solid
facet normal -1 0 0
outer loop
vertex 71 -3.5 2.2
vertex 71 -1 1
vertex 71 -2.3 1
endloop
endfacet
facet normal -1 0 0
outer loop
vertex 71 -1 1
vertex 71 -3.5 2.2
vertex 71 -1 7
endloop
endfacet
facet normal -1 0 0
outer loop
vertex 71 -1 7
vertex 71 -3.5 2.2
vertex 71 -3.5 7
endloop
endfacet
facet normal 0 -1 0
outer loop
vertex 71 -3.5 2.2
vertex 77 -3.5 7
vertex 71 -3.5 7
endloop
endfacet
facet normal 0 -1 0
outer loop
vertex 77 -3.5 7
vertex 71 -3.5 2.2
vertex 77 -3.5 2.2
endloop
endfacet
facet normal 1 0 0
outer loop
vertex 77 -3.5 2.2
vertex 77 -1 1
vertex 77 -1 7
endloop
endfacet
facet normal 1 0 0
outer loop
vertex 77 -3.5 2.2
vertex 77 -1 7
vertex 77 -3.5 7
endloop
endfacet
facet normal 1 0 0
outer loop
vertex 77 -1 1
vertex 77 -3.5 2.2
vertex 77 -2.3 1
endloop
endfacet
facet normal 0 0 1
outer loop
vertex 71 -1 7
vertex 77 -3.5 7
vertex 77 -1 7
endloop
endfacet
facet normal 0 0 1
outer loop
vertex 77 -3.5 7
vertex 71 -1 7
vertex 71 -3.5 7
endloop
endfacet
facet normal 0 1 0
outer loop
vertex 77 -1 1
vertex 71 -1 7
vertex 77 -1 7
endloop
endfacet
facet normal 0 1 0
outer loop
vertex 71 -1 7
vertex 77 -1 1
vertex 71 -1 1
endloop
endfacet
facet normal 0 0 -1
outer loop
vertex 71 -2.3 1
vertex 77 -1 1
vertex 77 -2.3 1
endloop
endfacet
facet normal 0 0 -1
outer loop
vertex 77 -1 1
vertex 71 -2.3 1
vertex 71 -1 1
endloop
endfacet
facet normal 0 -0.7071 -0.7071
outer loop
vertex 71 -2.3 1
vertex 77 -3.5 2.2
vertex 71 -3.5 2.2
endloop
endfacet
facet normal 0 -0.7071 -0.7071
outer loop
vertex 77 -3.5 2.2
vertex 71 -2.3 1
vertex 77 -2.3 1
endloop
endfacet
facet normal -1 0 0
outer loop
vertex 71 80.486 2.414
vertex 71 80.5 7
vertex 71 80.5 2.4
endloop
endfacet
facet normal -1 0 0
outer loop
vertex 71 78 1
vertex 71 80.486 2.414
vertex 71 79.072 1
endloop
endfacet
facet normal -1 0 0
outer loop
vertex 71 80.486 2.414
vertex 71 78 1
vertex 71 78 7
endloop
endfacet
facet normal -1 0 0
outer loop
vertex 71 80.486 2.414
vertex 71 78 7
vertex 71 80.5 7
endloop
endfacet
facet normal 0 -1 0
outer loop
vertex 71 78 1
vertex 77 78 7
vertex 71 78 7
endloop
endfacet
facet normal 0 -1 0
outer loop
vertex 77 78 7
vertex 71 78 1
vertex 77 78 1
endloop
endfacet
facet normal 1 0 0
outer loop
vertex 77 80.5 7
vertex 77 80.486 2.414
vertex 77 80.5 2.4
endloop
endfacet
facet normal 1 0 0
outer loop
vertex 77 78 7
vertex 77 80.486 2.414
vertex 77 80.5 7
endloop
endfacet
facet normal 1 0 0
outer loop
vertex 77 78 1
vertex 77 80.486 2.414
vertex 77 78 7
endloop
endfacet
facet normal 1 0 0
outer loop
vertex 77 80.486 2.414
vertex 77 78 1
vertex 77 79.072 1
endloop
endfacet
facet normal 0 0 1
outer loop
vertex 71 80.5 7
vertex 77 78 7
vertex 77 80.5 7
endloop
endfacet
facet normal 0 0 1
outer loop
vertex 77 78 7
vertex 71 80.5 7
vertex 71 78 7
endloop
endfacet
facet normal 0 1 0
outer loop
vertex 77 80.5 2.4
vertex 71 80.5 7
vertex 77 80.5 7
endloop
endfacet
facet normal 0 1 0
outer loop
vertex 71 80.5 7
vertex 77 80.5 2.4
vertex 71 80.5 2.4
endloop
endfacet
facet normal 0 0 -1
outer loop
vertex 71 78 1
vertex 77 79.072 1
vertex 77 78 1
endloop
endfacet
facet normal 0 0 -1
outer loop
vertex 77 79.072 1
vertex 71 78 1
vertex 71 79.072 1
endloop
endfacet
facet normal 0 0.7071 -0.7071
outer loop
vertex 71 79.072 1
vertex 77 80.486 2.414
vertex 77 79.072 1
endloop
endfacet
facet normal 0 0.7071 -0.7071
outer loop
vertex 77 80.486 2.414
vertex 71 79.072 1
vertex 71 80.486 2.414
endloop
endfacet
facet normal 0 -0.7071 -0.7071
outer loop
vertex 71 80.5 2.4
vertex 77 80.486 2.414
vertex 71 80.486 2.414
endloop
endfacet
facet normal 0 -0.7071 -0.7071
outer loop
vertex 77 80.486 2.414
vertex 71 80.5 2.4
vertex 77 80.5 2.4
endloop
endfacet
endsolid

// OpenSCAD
// file: util.scad
module micro_usb() {
    color("grey")
    cube([7.7,5.5,3]);
}

micro_usb();

module header(x_max,y_max) {
    union() {
        for(x=[0:x_max-1]) {
            for(y=[0:y_max-1]) {
                translate([x*2.5,y*2.5]) {
                    color("black")
                        cube([2.5,2.5,2.5]);
                    color("gold")
                        translate([(2.5 - 0.65)/2,(2.5 - 0.65)/2,-2.5])
                        cube([0.65,0.65,11.6]);
                }
            }
        }
    }
}

translate([0,8,0])
    header(2,13);

module sdcard() {

    color("red")
        cube([11,15,0.75]);
}
translate([10,0,0])
    sdcard();

module sdcard_reader() {
    color("grey")
        cube([12,11.65,1.5]);
}
translate([9.5,-0.4,0])
    sdcard_reader();

module hdmi() {
    color("grey")
        cube([11,15,5.6]);

}

translate([30,0,0])
    hdmi();

module usb() {
    color("grey")
    cube([14,14,5.85]);

}

translate([10,20,0])
    usb();

module audio() {
    $fn=30;
    color("black")
        union() {
            cube([7,12.6,6]);
            translate([7/2,14.5,3])
                rotate([90,0,0])
                cylinder(d=6,h=2.5);
        }
}

translate([30,30,0])
    audio();

module switch() {
    color("black")
        cube([7.75,7.75,2.66]);
    $fn=10;
    // actual height is 2.75, but the buttons are squishy
    // h=2.75
    color("gray")
        translate([7.75/2,7.75/2,2.66])
        cylinder(d=3.5,h=2);
}
translate([])
    switch();


module screw() {
    // 4-40x3/8th screws
    $fn=30;
    width = 2.7;
    thread_height = 7.46;
    head_height = 2;
    head_width = 5.2;
    color("grey")
    cylinder(h=head_height, d1=width, d2=head_width, center=true);
    color("grey")
    translate([0,0,-4])
    cylinder(h=thread_height, d=width, center=true);
}


module screw_with_hole() {
    screw();
    $fn=30;
    
    translate([0,0,7.9])
    // slightly oversized screw head
    cylinder(h=15, d=5.5, center=true);
}

module screw_mount() {
    $fn=30;
    thread_height = 7.46;
    width = 2.6; // undersized
    difference() {
        cube([6,8,4], center=true);
        translate([0,0,1])
        cylinder(h=thread_height, d=width, center=true);
    }
}
module battery() {
    color("grey")
    cube([37,60,7.24]);
}

module washer(h=3,d=5) {
    $fn=30;
    
    difference() {

        cylinder(h=h,d=d, center=true);
        translate([0,0,1])
        screw();
    }
}

module slide_switch() {
    color("grey")
      cube([4.2,11.7,6]);
    color("black")
      translate([1,3.6,6])
      cube([2,2,2]);
}

module dpad_plus(g, extrude=1) {
    $fn=30;
    corners = 10;
    linear_extrude(extrude)
    difference() {
        square(24, center=true);
        translate([g,g]) square(corners, center=true);
         rotate(90) translate([g,g]) square(corners, center=true);
        rotate(180) translate([g,g]) square(corners, center=true);
        rotate(270) translate([g,g]) square(corners, center=true);
    }
}


module top_half() {
  translate([0,0,14])
    pitft();
}

pwr_switch_offset = [98,73,4];

module hardware_back() {
     translate([64,6,3])
         battery(); 
     translate([124,72,3])
         rotate(180)
         powerboost();
    translate([60,70,0])
    rotate(180)
        pi_3_a_plus(); 
    
    translate(pwr_switch_offset)
        rotate([0,90,90])
        slide_switch();
       
}

module hardware_front() {
 translate([60,70,14])
    rotate(180)
        pitft();
    translate([64,6,14])
       controller();     
    
}
// file: front_buttons.scad
use <util.scad>;
button_spread=10;
button_size = 3;
button_height = 2.5;

dpad_offset = [80,22.5,18];
buttons_offset = [80,52.5,18];
option_buttons_offset = [95,7.5,18];

module button() {
     $fn=30;
    translate([0,0,-1.5])
    linear_extrude(button_height)
    circle(button_size);
}

module square_button() {
    translate([-3,-3])
    cube([6,6,button_height], center=false);
}

module rec_button() {
    translate([-2,-3])
    cube([4,6,button_height], center=false);
}

module buttons() {
    translate([0,button_spread,0]) button();
    translate([button_spread,0,0]) button();
    translate([0,-button_spread,0]) button();
    translate([-button_spread,0,0]) button();
}

module option_buttons() {
     translate([4,5,0.5]) square_button();
        translate([4,24,0.5]) rec_button();
        translate([4,36,0.5]) rec_button();
        translate([4,55,0.5]) square_button();
}

module front_buttons() {
    
    translate([0,0,-1.5])
    translate(dpad_offset) dpad_plus(7.8,button_height);
    translate([0,0,-2])
    translate(option_buttons_offset) option_buttons();
    translate([0,0,0])
    translate(buttons_offset) buttons();
    
    pitft_buttons();
    
}

module pitft_buttons() {
    translate([6,16.5,16.5]) 
        rec_button();
    
    translate([6,26.5,16.5]) 
        rec_button();
    
    translate([6,36.5,16.5]) 
        rec_button();
    
    translate([6,46.5,16.5]) 
       rec_button();
    
    translate([6,56.5,16.5]) 
        rec_button();
}

front_buttons();
// main file
use <front_buttons.scad>;

module l_button() {
    translate([74,-1,4])
    rotate([90,0,0])
    difference() {
        square_button();
        translate([-4,-3,1.3])
        rotate([45,0,0])
        cube([8,2,2]);
    }
}

module r_button() {
    translate([74,80.5,4])
    rotate([90,0,0])
    difference() {
        square_button();
        translate([-4,-3,-1.4])
        rotate([45,0,0])
        cube([8,2,2]);
    }
}

module back_buttons() {
    l_button();
    r_button();
}

back_buttons();
